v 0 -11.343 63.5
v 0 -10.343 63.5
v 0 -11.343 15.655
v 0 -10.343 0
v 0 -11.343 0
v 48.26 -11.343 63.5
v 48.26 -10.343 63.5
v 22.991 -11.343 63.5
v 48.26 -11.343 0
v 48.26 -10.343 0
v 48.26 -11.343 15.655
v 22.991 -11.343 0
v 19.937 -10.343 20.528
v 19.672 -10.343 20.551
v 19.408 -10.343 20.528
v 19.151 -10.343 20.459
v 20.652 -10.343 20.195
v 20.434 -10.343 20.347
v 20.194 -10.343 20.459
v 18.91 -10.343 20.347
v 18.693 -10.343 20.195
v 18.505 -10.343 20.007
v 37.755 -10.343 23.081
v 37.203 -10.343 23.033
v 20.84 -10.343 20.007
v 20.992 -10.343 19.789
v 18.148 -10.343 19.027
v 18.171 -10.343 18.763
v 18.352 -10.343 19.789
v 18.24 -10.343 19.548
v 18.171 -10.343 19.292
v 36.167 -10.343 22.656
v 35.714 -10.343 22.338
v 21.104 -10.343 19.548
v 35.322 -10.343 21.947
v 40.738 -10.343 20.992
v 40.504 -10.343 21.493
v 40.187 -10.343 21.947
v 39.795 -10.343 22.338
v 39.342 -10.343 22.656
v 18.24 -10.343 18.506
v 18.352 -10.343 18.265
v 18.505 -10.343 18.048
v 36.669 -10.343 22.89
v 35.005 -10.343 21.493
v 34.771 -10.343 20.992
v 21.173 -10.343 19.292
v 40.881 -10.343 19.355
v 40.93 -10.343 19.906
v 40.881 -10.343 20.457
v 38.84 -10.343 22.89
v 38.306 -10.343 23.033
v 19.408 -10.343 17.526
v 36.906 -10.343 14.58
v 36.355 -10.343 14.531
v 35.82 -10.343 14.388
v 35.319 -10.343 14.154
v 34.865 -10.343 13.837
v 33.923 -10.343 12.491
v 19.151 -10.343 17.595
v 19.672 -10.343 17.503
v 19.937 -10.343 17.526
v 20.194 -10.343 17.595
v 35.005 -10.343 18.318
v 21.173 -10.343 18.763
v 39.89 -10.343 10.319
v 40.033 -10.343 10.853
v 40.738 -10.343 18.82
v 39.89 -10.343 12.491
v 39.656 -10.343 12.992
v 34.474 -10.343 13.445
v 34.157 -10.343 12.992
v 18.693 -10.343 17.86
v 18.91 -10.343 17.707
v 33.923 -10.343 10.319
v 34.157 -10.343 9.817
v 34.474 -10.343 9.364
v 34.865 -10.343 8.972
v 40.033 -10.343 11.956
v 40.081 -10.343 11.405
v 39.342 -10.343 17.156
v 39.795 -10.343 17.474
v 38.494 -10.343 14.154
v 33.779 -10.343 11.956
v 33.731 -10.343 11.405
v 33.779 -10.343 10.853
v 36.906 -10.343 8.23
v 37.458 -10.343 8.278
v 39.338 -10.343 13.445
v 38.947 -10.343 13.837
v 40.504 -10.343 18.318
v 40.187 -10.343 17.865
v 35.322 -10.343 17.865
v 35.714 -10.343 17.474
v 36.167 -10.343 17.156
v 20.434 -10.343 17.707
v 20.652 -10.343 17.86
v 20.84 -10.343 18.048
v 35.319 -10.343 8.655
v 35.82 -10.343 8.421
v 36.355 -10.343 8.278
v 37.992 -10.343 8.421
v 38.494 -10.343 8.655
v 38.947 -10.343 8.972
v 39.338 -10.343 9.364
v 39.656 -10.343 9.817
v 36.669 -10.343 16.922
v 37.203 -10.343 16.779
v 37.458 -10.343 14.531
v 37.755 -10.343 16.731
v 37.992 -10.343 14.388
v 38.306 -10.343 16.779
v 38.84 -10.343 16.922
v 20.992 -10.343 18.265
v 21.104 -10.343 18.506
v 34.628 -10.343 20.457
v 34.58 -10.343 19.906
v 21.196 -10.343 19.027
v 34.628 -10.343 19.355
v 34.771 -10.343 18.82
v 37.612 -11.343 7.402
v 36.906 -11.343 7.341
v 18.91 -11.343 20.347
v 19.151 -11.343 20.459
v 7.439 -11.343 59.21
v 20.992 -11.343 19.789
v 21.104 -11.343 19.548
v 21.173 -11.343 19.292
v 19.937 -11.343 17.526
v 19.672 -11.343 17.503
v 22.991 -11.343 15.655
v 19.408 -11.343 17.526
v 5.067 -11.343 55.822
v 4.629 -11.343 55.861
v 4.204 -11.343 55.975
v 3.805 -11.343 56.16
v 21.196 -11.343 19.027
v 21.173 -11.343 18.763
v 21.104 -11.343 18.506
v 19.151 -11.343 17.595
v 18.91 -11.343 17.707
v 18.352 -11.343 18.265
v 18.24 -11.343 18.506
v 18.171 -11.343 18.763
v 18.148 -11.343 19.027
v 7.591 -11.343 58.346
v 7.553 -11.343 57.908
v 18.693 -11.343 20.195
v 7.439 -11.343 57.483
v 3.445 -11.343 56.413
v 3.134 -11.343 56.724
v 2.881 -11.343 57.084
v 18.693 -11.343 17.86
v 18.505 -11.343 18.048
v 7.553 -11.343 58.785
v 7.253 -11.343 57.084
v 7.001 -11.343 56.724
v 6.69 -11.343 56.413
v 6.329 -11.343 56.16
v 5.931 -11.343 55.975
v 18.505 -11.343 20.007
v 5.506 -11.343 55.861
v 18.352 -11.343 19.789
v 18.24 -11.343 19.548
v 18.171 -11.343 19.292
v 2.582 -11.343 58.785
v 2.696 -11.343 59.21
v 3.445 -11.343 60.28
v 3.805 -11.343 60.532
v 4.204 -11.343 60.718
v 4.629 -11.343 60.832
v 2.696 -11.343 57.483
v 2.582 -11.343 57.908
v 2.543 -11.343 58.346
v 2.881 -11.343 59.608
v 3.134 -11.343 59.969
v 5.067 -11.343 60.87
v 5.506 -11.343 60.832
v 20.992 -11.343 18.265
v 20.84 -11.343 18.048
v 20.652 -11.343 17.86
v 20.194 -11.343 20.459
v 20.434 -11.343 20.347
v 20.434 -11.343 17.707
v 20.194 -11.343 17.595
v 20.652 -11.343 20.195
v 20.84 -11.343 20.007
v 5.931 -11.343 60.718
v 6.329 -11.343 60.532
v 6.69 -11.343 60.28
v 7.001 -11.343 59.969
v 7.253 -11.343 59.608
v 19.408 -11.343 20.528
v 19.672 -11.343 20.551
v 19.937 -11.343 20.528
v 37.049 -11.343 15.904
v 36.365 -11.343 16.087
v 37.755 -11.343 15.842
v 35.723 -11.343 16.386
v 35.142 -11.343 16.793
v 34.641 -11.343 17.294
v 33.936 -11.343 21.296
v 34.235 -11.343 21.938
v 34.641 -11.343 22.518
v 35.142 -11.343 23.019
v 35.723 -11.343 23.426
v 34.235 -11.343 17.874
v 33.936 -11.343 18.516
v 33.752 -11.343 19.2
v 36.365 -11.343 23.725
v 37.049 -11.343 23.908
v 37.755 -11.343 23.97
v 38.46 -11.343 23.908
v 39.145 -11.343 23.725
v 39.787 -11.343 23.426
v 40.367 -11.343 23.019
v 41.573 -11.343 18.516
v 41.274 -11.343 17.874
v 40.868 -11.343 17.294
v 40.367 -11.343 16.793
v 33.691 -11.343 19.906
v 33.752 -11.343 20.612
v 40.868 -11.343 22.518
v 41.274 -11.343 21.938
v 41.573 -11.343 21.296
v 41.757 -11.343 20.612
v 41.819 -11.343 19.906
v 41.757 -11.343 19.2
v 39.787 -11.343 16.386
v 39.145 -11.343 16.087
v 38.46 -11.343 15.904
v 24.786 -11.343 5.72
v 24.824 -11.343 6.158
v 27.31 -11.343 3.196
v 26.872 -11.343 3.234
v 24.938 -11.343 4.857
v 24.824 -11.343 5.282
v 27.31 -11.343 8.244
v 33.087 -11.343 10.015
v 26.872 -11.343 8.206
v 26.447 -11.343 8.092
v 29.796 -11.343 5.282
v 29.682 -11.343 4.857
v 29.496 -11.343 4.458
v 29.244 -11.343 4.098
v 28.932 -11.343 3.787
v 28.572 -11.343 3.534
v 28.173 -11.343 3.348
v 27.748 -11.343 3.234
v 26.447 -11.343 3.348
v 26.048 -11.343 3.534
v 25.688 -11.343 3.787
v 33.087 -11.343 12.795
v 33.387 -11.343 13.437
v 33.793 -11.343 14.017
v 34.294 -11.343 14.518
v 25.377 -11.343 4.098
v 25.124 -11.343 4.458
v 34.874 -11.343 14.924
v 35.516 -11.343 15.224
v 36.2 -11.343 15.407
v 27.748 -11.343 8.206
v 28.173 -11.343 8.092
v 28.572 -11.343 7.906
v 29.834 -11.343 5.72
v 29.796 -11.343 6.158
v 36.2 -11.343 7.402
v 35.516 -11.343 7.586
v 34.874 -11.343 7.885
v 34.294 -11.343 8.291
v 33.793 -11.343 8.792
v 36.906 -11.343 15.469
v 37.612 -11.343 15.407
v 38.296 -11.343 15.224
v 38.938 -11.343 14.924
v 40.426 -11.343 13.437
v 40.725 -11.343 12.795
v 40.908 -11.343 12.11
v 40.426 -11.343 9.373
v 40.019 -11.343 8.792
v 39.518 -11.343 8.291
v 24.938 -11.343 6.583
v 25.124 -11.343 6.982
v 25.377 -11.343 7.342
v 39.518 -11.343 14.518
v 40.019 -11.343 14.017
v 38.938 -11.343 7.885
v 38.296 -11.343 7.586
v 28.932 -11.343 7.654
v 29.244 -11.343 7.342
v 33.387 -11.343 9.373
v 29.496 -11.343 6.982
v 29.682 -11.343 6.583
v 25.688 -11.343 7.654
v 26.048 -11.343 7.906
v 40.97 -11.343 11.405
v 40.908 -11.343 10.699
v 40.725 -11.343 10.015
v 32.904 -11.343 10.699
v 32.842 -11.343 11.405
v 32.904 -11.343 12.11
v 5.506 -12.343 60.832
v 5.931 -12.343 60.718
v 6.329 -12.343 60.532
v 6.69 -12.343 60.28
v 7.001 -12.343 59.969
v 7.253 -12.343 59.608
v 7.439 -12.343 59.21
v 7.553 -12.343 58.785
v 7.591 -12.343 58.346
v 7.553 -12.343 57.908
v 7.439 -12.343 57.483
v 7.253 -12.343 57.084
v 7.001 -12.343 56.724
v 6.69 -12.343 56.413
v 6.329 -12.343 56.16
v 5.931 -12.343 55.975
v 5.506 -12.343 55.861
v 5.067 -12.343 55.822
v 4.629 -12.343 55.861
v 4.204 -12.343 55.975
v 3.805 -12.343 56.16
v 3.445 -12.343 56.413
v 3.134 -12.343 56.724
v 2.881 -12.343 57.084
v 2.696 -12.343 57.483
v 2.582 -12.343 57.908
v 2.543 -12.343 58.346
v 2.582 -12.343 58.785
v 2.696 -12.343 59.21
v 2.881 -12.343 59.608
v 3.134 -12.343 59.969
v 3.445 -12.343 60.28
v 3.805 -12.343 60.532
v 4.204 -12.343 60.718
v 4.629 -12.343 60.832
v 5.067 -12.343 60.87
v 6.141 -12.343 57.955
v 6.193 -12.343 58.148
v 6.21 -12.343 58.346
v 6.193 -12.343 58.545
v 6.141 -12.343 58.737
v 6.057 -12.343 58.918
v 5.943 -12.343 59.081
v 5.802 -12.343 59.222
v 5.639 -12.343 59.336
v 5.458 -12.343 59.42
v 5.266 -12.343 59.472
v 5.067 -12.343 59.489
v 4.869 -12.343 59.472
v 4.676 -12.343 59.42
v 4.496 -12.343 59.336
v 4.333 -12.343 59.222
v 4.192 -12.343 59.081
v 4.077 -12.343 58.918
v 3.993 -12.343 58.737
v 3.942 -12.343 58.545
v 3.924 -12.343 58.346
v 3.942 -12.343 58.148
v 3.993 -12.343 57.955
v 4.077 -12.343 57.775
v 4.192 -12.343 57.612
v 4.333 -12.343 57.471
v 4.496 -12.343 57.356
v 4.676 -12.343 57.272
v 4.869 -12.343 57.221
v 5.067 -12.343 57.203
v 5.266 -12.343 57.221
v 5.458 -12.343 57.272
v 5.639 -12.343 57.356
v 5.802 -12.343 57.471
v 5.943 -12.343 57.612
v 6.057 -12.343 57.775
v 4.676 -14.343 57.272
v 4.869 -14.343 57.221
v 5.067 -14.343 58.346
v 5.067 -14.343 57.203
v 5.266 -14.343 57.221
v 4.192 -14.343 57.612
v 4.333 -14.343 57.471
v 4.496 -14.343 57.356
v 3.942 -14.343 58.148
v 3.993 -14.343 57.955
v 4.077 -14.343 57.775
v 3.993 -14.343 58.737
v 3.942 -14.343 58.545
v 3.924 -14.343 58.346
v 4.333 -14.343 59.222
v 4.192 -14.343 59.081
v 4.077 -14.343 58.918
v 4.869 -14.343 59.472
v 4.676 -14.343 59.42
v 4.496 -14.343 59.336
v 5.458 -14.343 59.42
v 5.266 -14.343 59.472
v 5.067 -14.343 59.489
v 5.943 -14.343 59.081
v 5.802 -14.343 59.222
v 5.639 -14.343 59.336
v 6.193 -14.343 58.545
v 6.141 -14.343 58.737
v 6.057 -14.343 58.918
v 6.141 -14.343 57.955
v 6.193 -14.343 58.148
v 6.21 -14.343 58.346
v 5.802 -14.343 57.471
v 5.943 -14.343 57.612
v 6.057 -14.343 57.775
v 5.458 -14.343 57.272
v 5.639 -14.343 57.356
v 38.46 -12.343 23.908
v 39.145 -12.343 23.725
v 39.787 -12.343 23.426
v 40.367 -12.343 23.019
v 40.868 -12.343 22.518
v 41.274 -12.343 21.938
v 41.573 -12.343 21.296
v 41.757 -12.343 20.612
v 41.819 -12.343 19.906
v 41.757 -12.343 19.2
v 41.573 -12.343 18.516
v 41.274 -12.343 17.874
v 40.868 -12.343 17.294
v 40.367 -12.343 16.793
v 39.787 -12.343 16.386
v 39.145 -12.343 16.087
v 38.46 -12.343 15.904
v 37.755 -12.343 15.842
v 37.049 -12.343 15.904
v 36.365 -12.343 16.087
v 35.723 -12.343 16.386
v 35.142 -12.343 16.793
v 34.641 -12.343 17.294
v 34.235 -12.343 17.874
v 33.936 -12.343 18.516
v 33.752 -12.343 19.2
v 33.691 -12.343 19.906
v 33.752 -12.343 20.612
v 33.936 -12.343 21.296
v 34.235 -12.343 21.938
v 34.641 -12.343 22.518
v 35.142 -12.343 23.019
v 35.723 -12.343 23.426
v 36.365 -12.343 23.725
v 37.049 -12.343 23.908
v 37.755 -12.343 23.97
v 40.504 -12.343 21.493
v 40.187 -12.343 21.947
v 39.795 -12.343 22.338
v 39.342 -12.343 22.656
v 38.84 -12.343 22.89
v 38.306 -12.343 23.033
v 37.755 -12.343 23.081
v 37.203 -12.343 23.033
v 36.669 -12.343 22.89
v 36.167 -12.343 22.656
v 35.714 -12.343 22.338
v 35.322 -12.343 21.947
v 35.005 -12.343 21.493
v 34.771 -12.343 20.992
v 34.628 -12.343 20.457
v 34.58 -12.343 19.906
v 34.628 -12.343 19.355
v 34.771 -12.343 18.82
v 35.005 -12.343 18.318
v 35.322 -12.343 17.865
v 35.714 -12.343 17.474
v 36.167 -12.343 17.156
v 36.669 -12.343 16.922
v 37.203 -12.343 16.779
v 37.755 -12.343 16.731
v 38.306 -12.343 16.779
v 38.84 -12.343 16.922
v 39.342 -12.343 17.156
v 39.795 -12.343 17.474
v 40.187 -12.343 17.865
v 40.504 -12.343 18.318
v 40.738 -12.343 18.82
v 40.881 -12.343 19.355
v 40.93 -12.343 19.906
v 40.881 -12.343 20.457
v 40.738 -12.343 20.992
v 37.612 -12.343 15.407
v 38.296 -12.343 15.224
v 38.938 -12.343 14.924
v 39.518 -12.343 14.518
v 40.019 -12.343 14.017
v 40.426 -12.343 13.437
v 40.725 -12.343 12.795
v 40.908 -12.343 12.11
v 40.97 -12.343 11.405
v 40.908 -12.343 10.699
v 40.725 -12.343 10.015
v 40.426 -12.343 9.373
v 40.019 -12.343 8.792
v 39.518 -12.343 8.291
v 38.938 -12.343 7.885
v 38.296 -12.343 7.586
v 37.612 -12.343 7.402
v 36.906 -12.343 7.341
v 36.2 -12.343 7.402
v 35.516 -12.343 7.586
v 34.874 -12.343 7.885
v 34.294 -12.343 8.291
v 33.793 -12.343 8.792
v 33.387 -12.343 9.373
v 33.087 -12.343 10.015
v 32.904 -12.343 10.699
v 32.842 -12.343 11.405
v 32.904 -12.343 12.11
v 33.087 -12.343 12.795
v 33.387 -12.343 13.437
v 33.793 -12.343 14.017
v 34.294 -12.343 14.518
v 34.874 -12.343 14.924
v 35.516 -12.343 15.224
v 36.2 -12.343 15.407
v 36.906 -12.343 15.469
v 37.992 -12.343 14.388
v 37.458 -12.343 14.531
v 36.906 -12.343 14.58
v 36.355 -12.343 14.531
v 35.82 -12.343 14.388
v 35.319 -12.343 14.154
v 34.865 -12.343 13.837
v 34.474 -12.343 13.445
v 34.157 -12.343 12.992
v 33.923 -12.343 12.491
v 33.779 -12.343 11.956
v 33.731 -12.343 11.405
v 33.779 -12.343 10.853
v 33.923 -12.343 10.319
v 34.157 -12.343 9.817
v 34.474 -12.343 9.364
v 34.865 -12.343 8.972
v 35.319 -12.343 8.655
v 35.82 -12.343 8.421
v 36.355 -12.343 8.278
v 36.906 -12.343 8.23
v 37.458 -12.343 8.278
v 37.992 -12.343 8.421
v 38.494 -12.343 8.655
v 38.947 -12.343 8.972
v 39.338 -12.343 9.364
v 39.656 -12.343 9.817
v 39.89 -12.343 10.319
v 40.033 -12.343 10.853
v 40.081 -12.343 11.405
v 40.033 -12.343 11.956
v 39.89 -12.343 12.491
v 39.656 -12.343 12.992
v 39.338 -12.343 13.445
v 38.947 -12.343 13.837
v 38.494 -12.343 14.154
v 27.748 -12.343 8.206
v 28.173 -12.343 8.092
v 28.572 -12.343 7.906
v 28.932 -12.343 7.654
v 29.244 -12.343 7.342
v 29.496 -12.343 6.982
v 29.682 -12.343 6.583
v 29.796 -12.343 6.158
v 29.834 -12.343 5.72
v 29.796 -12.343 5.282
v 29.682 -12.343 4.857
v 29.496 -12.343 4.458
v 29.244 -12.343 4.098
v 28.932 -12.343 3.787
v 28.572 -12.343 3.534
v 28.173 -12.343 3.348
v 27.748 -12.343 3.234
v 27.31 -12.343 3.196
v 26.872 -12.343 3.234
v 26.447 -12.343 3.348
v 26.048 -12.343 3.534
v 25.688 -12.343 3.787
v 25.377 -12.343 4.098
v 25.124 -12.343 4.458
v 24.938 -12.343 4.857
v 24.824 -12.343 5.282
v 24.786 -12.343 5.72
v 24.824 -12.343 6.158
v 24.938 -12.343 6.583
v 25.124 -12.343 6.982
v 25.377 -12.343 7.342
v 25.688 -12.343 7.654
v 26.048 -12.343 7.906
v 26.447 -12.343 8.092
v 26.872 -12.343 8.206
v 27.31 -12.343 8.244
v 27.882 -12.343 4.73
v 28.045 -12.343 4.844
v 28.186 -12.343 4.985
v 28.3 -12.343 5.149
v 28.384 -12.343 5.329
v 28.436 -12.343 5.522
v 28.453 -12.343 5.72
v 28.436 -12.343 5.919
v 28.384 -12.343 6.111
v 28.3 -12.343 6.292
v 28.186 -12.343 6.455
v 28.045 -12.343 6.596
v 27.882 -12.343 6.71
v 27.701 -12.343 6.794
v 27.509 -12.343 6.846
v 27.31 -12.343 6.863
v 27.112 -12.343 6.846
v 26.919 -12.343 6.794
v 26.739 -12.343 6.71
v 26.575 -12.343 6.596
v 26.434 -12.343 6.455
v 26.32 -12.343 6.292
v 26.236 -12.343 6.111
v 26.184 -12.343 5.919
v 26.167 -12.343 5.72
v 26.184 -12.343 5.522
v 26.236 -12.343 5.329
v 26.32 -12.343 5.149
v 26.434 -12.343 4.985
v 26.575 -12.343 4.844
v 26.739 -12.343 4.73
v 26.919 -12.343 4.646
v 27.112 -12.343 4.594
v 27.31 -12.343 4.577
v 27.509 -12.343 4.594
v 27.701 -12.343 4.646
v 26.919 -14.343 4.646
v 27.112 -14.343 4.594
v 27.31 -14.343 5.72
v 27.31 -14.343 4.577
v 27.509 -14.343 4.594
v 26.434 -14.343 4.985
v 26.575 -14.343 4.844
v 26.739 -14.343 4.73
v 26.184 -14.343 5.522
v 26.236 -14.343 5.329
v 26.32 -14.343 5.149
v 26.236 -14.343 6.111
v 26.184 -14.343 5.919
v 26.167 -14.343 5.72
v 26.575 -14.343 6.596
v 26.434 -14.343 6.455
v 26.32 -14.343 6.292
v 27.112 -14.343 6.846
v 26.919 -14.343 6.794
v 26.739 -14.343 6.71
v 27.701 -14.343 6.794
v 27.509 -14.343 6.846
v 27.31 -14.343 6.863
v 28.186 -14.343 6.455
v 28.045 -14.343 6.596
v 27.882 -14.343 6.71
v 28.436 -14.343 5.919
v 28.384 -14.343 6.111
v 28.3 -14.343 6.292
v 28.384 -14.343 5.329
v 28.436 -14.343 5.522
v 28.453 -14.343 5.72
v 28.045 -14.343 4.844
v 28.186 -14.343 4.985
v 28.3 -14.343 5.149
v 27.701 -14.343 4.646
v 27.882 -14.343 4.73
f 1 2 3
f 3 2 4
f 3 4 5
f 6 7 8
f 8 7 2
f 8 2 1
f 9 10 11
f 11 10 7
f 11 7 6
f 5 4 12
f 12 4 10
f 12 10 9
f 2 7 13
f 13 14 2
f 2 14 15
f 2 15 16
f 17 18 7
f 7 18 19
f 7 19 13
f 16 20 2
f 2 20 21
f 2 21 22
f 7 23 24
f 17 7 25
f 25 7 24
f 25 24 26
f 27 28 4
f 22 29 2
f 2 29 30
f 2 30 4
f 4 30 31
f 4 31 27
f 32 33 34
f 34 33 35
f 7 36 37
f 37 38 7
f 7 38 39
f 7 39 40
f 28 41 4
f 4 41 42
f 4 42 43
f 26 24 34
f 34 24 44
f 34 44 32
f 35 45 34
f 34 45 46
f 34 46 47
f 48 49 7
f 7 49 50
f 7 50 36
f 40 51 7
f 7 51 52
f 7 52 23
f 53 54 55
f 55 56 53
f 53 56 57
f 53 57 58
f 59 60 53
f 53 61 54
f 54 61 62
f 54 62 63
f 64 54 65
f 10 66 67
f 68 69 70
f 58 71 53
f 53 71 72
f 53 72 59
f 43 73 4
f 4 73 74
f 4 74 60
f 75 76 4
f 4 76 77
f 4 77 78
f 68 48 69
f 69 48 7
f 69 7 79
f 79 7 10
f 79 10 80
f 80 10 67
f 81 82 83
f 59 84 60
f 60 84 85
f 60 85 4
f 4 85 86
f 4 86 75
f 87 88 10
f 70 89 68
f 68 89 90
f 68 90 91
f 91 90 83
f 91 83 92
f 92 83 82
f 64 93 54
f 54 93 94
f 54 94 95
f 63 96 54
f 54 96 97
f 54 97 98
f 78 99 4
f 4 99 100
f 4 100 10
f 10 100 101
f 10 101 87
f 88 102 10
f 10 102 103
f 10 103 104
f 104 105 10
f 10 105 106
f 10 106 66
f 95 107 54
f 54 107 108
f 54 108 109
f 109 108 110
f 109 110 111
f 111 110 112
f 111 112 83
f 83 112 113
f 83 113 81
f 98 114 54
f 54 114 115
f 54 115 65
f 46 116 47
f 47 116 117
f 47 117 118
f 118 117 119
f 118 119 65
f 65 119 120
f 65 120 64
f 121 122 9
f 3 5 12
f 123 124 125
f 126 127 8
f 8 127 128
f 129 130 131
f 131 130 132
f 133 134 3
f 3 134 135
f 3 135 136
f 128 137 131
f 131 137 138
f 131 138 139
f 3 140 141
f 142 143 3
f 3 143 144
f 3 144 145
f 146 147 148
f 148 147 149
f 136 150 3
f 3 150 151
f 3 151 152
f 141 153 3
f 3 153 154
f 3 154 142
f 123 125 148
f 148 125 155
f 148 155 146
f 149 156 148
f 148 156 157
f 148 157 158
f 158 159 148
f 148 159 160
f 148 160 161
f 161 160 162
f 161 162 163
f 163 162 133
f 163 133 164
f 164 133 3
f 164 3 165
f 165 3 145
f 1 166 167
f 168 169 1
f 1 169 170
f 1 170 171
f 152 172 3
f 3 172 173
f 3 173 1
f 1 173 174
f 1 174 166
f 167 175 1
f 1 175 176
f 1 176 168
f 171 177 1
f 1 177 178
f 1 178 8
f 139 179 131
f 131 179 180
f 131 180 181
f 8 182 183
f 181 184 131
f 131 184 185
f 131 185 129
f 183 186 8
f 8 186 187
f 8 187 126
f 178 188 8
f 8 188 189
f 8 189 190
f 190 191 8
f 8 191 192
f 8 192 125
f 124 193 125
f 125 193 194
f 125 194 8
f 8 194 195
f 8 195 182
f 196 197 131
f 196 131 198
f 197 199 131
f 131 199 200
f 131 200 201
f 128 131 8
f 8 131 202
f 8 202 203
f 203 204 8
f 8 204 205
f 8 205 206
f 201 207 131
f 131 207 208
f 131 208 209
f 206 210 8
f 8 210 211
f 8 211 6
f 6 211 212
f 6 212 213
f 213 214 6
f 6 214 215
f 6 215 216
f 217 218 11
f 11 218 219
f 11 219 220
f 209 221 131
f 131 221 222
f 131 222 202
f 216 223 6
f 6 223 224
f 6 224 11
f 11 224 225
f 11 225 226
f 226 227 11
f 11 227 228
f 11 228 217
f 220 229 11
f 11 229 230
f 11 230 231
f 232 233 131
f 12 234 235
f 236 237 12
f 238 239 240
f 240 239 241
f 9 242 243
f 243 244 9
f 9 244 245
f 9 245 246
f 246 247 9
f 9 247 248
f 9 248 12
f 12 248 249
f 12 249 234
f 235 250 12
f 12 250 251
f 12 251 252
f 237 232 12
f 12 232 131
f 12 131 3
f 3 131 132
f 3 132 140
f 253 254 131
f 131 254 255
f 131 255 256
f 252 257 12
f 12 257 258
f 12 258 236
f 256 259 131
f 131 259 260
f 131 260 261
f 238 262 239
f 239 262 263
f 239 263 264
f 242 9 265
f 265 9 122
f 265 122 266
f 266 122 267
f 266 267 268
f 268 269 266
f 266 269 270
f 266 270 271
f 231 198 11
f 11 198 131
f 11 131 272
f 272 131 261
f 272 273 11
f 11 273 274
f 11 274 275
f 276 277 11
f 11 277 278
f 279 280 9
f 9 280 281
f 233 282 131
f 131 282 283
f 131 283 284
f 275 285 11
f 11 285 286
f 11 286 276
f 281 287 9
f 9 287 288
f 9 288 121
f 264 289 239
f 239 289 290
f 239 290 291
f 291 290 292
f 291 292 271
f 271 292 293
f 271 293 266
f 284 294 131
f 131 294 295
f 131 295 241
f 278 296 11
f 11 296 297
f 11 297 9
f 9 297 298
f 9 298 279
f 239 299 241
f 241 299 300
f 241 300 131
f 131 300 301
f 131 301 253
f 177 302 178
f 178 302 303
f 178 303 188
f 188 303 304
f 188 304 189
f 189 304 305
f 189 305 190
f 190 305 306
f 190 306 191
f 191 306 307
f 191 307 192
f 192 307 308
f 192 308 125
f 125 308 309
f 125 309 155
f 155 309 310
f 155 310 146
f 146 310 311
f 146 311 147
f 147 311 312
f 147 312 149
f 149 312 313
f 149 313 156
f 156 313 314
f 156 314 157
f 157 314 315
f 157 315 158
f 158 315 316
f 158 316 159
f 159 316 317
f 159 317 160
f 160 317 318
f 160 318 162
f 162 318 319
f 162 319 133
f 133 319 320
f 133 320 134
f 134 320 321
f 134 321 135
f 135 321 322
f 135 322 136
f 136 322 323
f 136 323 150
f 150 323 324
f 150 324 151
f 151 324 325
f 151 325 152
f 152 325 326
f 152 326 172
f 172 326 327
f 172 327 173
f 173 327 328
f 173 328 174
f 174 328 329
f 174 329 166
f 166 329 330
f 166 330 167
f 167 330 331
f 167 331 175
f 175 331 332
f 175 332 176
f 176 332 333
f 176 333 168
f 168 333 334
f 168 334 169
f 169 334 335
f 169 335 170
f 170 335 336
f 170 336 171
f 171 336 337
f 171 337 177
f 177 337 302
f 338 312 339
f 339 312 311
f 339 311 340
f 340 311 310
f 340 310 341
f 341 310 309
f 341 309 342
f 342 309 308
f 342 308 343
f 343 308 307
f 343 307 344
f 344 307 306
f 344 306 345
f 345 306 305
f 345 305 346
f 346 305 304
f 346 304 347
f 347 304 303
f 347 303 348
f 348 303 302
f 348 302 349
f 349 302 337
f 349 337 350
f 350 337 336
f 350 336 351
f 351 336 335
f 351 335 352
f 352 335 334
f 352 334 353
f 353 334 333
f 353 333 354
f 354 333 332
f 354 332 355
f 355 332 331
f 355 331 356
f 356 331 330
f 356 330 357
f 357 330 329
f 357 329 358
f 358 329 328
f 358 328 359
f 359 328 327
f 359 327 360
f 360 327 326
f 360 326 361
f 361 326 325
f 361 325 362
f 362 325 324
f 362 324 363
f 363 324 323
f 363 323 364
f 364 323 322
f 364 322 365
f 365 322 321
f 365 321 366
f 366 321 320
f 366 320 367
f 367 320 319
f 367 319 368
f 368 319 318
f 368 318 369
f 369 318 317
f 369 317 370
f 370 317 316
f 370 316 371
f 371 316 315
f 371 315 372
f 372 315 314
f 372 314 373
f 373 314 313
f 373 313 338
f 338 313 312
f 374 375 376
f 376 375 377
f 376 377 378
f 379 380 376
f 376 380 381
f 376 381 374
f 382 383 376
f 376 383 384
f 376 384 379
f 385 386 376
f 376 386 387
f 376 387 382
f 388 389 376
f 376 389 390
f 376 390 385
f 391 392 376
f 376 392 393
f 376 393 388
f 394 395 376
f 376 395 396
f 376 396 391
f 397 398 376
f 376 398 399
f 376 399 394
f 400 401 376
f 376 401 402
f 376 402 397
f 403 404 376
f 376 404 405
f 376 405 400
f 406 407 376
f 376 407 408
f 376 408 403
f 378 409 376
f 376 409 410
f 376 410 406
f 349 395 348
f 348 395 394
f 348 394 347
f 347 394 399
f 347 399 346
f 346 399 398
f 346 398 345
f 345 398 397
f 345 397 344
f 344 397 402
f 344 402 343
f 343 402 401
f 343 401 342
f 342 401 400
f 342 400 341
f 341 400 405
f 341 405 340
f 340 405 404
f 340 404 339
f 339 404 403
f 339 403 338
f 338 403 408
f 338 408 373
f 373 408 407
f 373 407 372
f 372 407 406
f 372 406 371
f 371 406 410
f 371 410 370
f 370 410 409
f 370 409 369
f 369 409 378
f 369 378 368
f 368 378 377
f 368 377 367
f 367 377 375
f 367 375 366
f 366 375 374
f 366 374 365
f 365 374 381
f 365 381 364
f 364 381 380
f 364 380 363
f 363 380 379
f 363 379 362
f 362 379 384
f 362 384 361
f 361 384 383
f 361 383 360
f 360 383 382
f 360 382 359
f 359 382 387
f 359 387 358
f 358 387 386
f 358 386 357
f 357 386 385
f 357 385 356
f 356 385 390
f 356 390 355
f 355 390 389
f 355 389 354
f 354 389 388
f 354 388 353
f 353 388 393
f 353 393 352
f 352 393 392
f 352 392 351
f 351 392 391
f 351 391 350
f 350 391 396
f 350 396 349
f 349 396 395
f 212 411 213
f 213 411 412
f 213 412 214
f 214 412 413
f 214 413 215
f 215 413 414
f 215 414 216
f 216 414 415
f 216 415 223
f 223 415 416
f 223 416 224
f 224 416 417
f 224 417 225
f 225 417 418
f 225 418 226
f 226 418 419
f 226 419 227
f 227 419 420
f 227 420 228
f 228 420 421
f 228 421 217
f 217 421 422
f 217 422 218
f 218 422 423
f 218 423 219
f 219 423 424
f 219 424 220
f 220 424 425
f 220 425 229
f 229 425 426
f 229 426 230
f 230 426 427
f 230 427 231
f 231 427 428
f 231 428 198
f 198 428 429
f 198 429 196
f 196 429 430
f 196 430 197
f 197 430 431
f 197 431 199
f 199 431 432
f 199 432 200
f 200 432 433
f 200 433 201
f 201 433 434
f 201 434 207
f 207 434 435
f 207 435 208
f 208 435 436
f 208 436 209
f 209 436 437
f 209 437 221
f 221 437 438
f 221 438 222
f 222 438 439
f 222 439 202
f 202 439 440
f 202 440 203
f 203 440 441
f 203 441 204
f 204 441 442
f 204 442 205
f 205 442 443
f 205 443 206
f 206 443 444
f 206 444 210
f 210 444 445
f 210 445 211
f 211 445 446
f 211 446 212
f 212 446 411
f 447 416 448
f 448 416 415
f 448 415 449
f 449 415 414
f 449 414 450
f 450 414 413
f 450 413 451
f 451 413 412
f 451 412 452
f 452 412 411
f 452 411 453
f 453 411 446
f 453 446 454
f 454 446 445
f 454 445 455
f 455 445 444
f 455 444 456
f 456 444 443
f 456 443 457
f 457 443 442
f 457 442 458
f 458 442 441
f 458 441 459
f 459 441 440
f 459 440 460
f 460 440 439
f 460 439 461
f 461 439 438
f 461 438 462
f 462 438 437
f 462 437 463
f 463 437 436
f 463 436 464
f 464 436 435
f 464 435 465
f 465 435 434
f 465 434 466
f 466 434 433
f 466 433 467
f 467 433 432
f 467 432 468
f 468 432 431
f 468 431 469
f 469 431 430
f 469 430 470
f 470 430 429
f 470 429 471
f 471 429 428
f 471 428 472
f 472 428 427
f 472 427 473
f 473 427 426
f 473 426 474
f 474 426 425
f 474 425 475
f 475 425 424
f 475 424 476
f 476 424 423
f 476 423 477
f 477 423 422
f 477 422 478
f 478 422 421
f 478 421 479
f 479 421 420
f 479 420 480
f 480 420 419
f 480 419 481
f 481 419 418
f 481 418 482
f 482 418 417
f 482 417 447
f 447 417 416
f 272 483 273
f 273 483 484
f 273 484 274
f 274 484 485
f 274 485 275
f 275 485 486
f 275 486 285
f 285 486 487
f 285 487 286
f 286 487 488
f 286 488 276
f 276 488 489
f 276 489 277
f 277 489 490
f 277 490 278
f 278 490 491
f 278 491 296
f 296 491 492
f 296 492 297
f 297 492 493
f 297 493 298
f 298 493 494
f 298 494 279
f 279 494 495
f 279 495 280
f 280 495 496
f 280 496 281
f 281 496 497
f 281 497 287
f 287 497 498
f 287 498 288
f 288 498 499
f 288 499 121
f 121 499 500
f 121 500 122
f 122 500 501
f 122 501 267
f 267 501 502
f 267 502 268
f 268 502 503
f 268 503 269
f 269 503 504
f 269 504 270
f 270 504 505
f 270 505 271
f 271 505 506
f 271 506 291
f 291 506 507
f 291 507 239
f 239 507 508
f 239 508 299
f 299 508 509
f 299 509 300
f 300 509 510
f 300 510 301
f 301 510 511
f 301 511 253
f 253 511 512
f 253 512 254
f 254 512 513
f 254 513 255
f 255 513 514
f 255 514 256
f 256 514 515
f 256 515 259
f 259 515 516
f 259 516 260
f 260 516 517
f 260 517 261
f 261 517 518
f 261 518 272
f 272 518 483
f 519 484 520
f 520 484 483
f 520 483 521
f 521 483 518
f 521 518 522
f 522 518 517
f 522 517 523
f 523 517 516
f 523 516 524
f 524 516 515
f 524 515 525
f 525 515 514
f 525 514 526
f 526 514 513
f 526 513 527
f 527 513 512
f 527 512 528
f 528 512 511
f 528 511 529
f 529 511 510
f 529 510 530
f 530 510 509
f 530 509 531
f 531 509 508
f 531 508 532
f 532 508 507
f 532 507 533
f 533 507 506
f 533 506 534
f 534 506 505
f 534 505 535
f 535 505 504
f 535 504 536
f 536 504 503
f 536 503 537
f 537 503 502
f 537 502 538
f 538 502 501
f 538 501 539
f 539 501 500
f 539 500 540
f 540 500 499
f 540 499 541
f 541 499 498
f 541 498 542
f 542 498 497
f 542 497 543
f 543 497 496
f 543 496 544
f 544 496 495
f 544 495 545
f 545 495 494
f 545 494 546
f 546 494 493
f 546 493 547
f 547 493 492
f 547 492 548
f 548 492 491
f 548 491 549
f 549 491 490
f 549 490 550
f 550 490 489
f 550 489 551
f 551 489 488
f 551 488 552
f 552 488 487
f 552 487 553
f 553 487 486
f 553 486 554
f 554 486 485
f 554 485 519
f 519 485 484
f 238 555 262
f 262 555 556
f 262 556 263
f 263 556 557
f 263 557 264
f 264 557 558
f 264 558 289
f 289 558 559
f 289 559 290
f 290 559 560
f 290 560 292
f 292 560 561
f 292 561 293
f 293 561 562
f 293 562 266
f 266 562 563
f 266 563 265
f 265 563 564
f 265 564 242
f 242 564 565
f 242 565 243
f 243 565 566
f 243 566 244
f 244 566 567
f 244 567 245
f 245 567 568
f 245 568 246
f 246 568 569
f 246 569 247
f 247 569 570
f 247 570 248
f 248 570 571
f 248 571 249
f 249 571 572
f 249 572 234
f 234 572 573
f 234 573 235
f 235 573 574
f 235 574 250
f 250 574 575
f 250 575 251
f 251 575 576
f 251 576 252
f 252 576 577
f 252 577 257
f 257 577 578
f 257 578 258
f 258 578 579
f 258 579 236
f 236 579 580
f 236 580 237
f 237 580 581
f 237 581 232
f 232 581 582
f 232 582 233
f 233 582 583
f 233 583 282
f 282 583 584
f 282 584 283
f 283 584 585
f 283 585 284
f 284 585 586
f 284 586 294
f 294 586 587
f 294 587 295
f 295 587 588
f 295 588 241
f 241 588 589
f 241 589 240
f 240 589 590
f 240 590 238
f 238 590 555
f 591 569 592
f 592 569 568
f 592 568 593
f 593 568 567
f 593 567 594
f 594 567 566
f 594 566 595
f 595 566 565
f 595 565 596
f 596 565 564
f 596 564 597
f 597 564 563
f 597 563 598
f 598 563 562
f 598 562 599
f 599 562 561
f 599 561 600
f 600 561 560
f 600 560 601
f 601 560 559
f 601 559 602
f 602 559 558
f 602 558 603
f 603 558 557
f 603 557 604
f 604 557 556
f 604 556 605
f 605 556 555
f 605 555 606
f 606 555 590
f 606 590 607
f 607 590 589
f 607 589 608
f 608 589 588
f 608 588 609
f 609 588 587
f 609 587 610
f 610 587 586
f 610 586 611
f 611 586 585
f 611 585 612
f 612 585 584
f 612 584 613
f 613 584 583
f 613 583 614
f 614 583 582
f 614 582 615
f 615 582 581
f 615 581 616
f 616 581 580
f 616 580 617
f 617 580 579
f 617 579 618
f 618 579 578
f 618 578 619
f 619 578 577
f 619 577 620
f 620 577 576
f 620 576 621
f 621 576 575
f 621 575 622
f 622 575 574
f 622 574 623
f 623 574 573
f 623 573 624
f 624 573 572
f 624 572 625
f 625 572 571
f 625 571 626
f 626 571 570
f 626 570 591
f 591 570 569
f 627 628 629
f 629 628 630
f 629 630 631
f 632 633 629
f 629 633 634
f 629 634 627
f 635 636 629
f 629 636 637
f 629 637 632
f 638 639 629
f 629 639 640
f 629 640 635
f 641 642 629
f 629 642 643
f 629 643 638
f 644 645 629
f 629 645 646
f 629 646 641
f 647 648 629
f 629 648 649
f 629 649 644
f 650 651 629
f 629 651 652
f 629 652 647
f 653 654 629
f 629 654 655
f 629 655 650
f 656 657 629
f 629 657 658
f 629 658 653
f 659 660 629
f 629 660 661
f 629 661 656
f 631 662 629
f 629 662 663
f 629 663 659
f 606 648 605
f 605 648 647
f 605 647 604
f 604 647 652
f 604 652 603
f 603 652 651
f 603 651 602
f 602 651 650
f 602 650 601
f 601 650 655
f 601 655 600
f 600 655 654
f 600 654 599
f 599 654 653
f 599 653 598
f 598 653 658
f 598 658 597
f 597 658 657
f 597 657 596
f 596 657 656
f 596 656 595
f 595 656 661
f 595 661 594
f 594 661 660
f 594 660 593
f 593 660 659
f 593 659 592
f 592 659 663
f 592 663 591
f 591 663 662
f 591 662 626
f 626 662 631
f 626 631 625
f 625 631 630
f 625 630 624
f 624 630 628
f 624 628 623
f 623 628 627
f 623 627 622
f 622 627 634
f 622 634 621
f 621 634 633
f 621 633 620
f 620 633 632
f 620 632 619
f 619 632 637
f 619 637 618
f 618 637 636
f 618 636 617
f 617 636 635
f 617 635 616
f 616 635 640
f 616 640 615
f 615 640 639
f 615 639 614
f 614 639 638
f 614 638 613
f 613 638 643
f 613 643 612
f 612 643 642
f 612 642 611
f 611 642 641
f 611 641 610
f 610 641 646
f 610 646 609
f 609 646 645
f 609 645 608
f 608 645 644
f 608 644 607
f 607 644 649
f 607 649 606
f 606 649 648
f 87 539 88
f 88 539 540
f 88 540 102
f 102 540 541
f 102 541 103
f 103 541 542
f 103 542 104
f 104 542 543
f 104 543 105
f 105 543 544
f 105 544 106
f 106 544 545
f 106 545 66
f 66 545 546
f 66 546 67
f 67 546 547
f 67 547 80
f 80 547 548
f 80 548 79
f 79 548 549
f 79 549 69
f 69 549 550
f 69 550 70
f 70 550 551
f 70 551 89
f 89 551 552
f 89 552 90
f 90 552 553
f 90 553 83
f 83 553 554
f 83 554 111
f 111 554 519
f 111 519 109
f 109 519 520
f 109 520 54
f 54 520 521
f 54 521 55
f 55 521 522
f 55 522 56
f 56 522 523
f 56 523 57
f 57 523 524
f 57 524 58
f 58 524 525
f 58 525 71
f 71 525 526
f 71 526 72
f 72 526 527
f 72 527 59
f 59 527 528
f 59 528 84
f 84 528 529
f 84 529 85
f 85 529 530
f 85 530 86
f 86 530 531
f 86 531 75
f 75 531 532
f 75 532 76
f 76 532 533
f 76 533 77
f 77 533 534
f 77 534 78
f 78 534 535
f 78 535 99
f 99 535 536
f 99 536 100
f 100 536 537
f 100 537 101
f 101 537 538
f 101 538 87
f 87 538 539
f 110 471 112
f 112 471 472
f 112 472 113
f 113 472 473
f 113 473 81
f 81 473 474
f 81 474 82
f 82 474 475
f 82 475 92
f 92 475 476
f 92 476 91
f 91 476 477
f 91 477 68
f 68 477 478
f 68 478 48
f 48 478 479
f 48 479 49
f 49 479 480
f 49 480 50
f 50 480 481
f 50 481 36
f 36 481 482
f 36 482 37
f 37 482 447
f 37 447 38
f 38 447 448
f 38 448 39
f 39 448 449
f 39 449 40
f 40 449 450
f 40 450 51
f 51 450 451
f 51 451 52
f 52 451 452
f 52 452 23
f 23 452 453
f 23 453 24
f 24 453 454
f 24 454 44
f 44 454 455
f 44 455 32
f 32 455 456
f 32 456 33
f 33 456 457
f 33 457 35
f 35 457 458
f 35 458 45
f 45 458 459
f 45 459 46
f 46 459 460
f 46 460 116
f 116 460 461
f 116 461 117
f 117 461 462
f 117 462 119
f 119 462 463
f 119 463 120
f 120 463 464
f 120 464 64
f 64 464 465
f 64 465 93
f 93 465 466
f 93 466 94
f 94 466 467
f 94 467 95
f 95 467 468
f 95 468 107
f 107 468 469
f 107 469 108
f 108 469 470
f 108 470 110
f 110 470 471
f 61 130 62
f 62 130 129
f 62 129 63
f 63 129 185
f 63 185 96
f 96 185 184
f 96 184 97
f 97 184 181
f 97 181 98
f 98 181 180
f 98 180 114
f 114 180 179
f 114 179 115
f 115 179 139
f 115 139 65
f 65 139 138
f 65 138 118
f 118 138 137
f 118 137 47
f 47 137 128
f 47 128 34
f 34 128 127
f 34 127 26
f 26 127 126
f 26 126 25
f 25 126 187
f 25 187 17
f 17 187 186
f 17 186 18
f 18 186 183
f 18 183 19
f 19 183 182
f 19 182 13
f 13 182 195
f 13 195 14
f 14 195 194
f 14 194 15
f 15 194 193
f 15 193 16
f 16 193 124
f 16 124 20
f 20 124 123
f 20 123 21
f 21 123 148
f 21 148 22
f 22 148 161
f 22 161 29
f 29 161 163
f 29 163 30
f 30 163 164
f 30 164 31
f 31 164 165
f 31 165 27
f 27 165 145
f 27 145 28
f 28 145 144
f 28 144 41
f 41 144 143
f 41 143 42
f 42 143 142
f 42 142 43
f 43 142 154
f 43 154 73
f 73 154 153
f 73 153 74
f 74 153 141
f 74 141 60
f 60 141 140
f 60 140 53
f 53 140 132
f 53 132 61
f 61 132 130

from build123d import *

# Parameters (mm, degrees)
SKETCH1_W               = 48.26
SKETCH1_H               = 63.5
BOSS_EXTRUDE1_DEPTH     = 1
SKETCH3_R               = 1.143
BOSS_EXTRUDE2_DEPTH     = 3
SKETCH4_R               = 2.524
SKETCH4_R_2             = 4.064
BOSS_EXTRUDE3_DEPTH     = 1
CUT_EXTRUDE1_DEPTH      = 80.814018819
CUT_EXTRUDE1_DEPTH_BACK = 80.814018819
SKETCH2_R               = 3.175
SKETCH2_R_2             = 1.524


with BuildPart() as part:
    # Sketch1 → Boss-Extrude1 (new body)
    with BuildSketch(Plane(origin=(0, -11.34264997, 0), x_dir=(1, 0, 0), z_dir=(0, 1, 0))):
        with Locations((24.13, -31.75)):
            Rectangle(SKETCH1_W, SKETCH1_H)
    extrude(amount=BOSS_EXTRUDE1_DEPTH)

    # Sketch3 → Boss-Extrude2 (add)
    with BuildSketch(Plane.XZ.offset(11.34264997)):
        with Locations(Location((5.0673, 58.34634, 0), (0, 0, 90))):
            Circle(SKETCH3_R)
        with Locations(Location((27.31008, 5.72008, 0), (0, 0, 90))):
            Circle(SKETCH3_R)
    extrude(amount=BOSS_EXTRUDE2_DEPTH)

    # Sketch4 → Boss-Extrude3 (add)
    with BuildSketch(Plane.XZ.offset(11.34264997)):
        with Locations(Location((5.0673, 58.34634, 0), (0, 0, 90))):
            Circle(SKETCH4_R)
        with Locations(Location((37.75456, 19.90598, 0), (0, 0, 90))):
            Circle(SKETCH4_R_2)
        with Locations(Location((36.9062, 11.4046, 0), (0, 0, 90))):
            Circle(SKETCH4_R_2)
        with Locations(Location((27.31008, 5.72008, 0), (0, 0, 90))):
            Circle(SKETCH4_R)
    extrude(amount=BOSS_EXTRUDE3_DEPTH)

    # Sketch2 → Cut-Extrude1 (cut, two sides: drawn at the far end of the back side and taken through both)
    with BuildSketch(Plane.XZ.offset(11.34264997).offset(-CUT_EXTRUDE1_DEPTH_BACK)):
        with Locations(Location((37.75456, 19.90598, 0), (0, 0, 270))):
            Circle(SKETCH2_R)
        with Locations(Location((36.9062, 11.4046, 0), (0, 0, 270))):
            Circle(SKETCH2_R)
        with Locations(Location((19.6723, 19.02714, 0), (0, 0, 270))):
            Circle(SKETCH2_R_2)
    extrude(amount=CUT_EXTRUDE1_DEPTH + CUT_EXTRUDE1_DEPTH_BACK, mode=Mode.SUBTRACT)


solid = part.part
